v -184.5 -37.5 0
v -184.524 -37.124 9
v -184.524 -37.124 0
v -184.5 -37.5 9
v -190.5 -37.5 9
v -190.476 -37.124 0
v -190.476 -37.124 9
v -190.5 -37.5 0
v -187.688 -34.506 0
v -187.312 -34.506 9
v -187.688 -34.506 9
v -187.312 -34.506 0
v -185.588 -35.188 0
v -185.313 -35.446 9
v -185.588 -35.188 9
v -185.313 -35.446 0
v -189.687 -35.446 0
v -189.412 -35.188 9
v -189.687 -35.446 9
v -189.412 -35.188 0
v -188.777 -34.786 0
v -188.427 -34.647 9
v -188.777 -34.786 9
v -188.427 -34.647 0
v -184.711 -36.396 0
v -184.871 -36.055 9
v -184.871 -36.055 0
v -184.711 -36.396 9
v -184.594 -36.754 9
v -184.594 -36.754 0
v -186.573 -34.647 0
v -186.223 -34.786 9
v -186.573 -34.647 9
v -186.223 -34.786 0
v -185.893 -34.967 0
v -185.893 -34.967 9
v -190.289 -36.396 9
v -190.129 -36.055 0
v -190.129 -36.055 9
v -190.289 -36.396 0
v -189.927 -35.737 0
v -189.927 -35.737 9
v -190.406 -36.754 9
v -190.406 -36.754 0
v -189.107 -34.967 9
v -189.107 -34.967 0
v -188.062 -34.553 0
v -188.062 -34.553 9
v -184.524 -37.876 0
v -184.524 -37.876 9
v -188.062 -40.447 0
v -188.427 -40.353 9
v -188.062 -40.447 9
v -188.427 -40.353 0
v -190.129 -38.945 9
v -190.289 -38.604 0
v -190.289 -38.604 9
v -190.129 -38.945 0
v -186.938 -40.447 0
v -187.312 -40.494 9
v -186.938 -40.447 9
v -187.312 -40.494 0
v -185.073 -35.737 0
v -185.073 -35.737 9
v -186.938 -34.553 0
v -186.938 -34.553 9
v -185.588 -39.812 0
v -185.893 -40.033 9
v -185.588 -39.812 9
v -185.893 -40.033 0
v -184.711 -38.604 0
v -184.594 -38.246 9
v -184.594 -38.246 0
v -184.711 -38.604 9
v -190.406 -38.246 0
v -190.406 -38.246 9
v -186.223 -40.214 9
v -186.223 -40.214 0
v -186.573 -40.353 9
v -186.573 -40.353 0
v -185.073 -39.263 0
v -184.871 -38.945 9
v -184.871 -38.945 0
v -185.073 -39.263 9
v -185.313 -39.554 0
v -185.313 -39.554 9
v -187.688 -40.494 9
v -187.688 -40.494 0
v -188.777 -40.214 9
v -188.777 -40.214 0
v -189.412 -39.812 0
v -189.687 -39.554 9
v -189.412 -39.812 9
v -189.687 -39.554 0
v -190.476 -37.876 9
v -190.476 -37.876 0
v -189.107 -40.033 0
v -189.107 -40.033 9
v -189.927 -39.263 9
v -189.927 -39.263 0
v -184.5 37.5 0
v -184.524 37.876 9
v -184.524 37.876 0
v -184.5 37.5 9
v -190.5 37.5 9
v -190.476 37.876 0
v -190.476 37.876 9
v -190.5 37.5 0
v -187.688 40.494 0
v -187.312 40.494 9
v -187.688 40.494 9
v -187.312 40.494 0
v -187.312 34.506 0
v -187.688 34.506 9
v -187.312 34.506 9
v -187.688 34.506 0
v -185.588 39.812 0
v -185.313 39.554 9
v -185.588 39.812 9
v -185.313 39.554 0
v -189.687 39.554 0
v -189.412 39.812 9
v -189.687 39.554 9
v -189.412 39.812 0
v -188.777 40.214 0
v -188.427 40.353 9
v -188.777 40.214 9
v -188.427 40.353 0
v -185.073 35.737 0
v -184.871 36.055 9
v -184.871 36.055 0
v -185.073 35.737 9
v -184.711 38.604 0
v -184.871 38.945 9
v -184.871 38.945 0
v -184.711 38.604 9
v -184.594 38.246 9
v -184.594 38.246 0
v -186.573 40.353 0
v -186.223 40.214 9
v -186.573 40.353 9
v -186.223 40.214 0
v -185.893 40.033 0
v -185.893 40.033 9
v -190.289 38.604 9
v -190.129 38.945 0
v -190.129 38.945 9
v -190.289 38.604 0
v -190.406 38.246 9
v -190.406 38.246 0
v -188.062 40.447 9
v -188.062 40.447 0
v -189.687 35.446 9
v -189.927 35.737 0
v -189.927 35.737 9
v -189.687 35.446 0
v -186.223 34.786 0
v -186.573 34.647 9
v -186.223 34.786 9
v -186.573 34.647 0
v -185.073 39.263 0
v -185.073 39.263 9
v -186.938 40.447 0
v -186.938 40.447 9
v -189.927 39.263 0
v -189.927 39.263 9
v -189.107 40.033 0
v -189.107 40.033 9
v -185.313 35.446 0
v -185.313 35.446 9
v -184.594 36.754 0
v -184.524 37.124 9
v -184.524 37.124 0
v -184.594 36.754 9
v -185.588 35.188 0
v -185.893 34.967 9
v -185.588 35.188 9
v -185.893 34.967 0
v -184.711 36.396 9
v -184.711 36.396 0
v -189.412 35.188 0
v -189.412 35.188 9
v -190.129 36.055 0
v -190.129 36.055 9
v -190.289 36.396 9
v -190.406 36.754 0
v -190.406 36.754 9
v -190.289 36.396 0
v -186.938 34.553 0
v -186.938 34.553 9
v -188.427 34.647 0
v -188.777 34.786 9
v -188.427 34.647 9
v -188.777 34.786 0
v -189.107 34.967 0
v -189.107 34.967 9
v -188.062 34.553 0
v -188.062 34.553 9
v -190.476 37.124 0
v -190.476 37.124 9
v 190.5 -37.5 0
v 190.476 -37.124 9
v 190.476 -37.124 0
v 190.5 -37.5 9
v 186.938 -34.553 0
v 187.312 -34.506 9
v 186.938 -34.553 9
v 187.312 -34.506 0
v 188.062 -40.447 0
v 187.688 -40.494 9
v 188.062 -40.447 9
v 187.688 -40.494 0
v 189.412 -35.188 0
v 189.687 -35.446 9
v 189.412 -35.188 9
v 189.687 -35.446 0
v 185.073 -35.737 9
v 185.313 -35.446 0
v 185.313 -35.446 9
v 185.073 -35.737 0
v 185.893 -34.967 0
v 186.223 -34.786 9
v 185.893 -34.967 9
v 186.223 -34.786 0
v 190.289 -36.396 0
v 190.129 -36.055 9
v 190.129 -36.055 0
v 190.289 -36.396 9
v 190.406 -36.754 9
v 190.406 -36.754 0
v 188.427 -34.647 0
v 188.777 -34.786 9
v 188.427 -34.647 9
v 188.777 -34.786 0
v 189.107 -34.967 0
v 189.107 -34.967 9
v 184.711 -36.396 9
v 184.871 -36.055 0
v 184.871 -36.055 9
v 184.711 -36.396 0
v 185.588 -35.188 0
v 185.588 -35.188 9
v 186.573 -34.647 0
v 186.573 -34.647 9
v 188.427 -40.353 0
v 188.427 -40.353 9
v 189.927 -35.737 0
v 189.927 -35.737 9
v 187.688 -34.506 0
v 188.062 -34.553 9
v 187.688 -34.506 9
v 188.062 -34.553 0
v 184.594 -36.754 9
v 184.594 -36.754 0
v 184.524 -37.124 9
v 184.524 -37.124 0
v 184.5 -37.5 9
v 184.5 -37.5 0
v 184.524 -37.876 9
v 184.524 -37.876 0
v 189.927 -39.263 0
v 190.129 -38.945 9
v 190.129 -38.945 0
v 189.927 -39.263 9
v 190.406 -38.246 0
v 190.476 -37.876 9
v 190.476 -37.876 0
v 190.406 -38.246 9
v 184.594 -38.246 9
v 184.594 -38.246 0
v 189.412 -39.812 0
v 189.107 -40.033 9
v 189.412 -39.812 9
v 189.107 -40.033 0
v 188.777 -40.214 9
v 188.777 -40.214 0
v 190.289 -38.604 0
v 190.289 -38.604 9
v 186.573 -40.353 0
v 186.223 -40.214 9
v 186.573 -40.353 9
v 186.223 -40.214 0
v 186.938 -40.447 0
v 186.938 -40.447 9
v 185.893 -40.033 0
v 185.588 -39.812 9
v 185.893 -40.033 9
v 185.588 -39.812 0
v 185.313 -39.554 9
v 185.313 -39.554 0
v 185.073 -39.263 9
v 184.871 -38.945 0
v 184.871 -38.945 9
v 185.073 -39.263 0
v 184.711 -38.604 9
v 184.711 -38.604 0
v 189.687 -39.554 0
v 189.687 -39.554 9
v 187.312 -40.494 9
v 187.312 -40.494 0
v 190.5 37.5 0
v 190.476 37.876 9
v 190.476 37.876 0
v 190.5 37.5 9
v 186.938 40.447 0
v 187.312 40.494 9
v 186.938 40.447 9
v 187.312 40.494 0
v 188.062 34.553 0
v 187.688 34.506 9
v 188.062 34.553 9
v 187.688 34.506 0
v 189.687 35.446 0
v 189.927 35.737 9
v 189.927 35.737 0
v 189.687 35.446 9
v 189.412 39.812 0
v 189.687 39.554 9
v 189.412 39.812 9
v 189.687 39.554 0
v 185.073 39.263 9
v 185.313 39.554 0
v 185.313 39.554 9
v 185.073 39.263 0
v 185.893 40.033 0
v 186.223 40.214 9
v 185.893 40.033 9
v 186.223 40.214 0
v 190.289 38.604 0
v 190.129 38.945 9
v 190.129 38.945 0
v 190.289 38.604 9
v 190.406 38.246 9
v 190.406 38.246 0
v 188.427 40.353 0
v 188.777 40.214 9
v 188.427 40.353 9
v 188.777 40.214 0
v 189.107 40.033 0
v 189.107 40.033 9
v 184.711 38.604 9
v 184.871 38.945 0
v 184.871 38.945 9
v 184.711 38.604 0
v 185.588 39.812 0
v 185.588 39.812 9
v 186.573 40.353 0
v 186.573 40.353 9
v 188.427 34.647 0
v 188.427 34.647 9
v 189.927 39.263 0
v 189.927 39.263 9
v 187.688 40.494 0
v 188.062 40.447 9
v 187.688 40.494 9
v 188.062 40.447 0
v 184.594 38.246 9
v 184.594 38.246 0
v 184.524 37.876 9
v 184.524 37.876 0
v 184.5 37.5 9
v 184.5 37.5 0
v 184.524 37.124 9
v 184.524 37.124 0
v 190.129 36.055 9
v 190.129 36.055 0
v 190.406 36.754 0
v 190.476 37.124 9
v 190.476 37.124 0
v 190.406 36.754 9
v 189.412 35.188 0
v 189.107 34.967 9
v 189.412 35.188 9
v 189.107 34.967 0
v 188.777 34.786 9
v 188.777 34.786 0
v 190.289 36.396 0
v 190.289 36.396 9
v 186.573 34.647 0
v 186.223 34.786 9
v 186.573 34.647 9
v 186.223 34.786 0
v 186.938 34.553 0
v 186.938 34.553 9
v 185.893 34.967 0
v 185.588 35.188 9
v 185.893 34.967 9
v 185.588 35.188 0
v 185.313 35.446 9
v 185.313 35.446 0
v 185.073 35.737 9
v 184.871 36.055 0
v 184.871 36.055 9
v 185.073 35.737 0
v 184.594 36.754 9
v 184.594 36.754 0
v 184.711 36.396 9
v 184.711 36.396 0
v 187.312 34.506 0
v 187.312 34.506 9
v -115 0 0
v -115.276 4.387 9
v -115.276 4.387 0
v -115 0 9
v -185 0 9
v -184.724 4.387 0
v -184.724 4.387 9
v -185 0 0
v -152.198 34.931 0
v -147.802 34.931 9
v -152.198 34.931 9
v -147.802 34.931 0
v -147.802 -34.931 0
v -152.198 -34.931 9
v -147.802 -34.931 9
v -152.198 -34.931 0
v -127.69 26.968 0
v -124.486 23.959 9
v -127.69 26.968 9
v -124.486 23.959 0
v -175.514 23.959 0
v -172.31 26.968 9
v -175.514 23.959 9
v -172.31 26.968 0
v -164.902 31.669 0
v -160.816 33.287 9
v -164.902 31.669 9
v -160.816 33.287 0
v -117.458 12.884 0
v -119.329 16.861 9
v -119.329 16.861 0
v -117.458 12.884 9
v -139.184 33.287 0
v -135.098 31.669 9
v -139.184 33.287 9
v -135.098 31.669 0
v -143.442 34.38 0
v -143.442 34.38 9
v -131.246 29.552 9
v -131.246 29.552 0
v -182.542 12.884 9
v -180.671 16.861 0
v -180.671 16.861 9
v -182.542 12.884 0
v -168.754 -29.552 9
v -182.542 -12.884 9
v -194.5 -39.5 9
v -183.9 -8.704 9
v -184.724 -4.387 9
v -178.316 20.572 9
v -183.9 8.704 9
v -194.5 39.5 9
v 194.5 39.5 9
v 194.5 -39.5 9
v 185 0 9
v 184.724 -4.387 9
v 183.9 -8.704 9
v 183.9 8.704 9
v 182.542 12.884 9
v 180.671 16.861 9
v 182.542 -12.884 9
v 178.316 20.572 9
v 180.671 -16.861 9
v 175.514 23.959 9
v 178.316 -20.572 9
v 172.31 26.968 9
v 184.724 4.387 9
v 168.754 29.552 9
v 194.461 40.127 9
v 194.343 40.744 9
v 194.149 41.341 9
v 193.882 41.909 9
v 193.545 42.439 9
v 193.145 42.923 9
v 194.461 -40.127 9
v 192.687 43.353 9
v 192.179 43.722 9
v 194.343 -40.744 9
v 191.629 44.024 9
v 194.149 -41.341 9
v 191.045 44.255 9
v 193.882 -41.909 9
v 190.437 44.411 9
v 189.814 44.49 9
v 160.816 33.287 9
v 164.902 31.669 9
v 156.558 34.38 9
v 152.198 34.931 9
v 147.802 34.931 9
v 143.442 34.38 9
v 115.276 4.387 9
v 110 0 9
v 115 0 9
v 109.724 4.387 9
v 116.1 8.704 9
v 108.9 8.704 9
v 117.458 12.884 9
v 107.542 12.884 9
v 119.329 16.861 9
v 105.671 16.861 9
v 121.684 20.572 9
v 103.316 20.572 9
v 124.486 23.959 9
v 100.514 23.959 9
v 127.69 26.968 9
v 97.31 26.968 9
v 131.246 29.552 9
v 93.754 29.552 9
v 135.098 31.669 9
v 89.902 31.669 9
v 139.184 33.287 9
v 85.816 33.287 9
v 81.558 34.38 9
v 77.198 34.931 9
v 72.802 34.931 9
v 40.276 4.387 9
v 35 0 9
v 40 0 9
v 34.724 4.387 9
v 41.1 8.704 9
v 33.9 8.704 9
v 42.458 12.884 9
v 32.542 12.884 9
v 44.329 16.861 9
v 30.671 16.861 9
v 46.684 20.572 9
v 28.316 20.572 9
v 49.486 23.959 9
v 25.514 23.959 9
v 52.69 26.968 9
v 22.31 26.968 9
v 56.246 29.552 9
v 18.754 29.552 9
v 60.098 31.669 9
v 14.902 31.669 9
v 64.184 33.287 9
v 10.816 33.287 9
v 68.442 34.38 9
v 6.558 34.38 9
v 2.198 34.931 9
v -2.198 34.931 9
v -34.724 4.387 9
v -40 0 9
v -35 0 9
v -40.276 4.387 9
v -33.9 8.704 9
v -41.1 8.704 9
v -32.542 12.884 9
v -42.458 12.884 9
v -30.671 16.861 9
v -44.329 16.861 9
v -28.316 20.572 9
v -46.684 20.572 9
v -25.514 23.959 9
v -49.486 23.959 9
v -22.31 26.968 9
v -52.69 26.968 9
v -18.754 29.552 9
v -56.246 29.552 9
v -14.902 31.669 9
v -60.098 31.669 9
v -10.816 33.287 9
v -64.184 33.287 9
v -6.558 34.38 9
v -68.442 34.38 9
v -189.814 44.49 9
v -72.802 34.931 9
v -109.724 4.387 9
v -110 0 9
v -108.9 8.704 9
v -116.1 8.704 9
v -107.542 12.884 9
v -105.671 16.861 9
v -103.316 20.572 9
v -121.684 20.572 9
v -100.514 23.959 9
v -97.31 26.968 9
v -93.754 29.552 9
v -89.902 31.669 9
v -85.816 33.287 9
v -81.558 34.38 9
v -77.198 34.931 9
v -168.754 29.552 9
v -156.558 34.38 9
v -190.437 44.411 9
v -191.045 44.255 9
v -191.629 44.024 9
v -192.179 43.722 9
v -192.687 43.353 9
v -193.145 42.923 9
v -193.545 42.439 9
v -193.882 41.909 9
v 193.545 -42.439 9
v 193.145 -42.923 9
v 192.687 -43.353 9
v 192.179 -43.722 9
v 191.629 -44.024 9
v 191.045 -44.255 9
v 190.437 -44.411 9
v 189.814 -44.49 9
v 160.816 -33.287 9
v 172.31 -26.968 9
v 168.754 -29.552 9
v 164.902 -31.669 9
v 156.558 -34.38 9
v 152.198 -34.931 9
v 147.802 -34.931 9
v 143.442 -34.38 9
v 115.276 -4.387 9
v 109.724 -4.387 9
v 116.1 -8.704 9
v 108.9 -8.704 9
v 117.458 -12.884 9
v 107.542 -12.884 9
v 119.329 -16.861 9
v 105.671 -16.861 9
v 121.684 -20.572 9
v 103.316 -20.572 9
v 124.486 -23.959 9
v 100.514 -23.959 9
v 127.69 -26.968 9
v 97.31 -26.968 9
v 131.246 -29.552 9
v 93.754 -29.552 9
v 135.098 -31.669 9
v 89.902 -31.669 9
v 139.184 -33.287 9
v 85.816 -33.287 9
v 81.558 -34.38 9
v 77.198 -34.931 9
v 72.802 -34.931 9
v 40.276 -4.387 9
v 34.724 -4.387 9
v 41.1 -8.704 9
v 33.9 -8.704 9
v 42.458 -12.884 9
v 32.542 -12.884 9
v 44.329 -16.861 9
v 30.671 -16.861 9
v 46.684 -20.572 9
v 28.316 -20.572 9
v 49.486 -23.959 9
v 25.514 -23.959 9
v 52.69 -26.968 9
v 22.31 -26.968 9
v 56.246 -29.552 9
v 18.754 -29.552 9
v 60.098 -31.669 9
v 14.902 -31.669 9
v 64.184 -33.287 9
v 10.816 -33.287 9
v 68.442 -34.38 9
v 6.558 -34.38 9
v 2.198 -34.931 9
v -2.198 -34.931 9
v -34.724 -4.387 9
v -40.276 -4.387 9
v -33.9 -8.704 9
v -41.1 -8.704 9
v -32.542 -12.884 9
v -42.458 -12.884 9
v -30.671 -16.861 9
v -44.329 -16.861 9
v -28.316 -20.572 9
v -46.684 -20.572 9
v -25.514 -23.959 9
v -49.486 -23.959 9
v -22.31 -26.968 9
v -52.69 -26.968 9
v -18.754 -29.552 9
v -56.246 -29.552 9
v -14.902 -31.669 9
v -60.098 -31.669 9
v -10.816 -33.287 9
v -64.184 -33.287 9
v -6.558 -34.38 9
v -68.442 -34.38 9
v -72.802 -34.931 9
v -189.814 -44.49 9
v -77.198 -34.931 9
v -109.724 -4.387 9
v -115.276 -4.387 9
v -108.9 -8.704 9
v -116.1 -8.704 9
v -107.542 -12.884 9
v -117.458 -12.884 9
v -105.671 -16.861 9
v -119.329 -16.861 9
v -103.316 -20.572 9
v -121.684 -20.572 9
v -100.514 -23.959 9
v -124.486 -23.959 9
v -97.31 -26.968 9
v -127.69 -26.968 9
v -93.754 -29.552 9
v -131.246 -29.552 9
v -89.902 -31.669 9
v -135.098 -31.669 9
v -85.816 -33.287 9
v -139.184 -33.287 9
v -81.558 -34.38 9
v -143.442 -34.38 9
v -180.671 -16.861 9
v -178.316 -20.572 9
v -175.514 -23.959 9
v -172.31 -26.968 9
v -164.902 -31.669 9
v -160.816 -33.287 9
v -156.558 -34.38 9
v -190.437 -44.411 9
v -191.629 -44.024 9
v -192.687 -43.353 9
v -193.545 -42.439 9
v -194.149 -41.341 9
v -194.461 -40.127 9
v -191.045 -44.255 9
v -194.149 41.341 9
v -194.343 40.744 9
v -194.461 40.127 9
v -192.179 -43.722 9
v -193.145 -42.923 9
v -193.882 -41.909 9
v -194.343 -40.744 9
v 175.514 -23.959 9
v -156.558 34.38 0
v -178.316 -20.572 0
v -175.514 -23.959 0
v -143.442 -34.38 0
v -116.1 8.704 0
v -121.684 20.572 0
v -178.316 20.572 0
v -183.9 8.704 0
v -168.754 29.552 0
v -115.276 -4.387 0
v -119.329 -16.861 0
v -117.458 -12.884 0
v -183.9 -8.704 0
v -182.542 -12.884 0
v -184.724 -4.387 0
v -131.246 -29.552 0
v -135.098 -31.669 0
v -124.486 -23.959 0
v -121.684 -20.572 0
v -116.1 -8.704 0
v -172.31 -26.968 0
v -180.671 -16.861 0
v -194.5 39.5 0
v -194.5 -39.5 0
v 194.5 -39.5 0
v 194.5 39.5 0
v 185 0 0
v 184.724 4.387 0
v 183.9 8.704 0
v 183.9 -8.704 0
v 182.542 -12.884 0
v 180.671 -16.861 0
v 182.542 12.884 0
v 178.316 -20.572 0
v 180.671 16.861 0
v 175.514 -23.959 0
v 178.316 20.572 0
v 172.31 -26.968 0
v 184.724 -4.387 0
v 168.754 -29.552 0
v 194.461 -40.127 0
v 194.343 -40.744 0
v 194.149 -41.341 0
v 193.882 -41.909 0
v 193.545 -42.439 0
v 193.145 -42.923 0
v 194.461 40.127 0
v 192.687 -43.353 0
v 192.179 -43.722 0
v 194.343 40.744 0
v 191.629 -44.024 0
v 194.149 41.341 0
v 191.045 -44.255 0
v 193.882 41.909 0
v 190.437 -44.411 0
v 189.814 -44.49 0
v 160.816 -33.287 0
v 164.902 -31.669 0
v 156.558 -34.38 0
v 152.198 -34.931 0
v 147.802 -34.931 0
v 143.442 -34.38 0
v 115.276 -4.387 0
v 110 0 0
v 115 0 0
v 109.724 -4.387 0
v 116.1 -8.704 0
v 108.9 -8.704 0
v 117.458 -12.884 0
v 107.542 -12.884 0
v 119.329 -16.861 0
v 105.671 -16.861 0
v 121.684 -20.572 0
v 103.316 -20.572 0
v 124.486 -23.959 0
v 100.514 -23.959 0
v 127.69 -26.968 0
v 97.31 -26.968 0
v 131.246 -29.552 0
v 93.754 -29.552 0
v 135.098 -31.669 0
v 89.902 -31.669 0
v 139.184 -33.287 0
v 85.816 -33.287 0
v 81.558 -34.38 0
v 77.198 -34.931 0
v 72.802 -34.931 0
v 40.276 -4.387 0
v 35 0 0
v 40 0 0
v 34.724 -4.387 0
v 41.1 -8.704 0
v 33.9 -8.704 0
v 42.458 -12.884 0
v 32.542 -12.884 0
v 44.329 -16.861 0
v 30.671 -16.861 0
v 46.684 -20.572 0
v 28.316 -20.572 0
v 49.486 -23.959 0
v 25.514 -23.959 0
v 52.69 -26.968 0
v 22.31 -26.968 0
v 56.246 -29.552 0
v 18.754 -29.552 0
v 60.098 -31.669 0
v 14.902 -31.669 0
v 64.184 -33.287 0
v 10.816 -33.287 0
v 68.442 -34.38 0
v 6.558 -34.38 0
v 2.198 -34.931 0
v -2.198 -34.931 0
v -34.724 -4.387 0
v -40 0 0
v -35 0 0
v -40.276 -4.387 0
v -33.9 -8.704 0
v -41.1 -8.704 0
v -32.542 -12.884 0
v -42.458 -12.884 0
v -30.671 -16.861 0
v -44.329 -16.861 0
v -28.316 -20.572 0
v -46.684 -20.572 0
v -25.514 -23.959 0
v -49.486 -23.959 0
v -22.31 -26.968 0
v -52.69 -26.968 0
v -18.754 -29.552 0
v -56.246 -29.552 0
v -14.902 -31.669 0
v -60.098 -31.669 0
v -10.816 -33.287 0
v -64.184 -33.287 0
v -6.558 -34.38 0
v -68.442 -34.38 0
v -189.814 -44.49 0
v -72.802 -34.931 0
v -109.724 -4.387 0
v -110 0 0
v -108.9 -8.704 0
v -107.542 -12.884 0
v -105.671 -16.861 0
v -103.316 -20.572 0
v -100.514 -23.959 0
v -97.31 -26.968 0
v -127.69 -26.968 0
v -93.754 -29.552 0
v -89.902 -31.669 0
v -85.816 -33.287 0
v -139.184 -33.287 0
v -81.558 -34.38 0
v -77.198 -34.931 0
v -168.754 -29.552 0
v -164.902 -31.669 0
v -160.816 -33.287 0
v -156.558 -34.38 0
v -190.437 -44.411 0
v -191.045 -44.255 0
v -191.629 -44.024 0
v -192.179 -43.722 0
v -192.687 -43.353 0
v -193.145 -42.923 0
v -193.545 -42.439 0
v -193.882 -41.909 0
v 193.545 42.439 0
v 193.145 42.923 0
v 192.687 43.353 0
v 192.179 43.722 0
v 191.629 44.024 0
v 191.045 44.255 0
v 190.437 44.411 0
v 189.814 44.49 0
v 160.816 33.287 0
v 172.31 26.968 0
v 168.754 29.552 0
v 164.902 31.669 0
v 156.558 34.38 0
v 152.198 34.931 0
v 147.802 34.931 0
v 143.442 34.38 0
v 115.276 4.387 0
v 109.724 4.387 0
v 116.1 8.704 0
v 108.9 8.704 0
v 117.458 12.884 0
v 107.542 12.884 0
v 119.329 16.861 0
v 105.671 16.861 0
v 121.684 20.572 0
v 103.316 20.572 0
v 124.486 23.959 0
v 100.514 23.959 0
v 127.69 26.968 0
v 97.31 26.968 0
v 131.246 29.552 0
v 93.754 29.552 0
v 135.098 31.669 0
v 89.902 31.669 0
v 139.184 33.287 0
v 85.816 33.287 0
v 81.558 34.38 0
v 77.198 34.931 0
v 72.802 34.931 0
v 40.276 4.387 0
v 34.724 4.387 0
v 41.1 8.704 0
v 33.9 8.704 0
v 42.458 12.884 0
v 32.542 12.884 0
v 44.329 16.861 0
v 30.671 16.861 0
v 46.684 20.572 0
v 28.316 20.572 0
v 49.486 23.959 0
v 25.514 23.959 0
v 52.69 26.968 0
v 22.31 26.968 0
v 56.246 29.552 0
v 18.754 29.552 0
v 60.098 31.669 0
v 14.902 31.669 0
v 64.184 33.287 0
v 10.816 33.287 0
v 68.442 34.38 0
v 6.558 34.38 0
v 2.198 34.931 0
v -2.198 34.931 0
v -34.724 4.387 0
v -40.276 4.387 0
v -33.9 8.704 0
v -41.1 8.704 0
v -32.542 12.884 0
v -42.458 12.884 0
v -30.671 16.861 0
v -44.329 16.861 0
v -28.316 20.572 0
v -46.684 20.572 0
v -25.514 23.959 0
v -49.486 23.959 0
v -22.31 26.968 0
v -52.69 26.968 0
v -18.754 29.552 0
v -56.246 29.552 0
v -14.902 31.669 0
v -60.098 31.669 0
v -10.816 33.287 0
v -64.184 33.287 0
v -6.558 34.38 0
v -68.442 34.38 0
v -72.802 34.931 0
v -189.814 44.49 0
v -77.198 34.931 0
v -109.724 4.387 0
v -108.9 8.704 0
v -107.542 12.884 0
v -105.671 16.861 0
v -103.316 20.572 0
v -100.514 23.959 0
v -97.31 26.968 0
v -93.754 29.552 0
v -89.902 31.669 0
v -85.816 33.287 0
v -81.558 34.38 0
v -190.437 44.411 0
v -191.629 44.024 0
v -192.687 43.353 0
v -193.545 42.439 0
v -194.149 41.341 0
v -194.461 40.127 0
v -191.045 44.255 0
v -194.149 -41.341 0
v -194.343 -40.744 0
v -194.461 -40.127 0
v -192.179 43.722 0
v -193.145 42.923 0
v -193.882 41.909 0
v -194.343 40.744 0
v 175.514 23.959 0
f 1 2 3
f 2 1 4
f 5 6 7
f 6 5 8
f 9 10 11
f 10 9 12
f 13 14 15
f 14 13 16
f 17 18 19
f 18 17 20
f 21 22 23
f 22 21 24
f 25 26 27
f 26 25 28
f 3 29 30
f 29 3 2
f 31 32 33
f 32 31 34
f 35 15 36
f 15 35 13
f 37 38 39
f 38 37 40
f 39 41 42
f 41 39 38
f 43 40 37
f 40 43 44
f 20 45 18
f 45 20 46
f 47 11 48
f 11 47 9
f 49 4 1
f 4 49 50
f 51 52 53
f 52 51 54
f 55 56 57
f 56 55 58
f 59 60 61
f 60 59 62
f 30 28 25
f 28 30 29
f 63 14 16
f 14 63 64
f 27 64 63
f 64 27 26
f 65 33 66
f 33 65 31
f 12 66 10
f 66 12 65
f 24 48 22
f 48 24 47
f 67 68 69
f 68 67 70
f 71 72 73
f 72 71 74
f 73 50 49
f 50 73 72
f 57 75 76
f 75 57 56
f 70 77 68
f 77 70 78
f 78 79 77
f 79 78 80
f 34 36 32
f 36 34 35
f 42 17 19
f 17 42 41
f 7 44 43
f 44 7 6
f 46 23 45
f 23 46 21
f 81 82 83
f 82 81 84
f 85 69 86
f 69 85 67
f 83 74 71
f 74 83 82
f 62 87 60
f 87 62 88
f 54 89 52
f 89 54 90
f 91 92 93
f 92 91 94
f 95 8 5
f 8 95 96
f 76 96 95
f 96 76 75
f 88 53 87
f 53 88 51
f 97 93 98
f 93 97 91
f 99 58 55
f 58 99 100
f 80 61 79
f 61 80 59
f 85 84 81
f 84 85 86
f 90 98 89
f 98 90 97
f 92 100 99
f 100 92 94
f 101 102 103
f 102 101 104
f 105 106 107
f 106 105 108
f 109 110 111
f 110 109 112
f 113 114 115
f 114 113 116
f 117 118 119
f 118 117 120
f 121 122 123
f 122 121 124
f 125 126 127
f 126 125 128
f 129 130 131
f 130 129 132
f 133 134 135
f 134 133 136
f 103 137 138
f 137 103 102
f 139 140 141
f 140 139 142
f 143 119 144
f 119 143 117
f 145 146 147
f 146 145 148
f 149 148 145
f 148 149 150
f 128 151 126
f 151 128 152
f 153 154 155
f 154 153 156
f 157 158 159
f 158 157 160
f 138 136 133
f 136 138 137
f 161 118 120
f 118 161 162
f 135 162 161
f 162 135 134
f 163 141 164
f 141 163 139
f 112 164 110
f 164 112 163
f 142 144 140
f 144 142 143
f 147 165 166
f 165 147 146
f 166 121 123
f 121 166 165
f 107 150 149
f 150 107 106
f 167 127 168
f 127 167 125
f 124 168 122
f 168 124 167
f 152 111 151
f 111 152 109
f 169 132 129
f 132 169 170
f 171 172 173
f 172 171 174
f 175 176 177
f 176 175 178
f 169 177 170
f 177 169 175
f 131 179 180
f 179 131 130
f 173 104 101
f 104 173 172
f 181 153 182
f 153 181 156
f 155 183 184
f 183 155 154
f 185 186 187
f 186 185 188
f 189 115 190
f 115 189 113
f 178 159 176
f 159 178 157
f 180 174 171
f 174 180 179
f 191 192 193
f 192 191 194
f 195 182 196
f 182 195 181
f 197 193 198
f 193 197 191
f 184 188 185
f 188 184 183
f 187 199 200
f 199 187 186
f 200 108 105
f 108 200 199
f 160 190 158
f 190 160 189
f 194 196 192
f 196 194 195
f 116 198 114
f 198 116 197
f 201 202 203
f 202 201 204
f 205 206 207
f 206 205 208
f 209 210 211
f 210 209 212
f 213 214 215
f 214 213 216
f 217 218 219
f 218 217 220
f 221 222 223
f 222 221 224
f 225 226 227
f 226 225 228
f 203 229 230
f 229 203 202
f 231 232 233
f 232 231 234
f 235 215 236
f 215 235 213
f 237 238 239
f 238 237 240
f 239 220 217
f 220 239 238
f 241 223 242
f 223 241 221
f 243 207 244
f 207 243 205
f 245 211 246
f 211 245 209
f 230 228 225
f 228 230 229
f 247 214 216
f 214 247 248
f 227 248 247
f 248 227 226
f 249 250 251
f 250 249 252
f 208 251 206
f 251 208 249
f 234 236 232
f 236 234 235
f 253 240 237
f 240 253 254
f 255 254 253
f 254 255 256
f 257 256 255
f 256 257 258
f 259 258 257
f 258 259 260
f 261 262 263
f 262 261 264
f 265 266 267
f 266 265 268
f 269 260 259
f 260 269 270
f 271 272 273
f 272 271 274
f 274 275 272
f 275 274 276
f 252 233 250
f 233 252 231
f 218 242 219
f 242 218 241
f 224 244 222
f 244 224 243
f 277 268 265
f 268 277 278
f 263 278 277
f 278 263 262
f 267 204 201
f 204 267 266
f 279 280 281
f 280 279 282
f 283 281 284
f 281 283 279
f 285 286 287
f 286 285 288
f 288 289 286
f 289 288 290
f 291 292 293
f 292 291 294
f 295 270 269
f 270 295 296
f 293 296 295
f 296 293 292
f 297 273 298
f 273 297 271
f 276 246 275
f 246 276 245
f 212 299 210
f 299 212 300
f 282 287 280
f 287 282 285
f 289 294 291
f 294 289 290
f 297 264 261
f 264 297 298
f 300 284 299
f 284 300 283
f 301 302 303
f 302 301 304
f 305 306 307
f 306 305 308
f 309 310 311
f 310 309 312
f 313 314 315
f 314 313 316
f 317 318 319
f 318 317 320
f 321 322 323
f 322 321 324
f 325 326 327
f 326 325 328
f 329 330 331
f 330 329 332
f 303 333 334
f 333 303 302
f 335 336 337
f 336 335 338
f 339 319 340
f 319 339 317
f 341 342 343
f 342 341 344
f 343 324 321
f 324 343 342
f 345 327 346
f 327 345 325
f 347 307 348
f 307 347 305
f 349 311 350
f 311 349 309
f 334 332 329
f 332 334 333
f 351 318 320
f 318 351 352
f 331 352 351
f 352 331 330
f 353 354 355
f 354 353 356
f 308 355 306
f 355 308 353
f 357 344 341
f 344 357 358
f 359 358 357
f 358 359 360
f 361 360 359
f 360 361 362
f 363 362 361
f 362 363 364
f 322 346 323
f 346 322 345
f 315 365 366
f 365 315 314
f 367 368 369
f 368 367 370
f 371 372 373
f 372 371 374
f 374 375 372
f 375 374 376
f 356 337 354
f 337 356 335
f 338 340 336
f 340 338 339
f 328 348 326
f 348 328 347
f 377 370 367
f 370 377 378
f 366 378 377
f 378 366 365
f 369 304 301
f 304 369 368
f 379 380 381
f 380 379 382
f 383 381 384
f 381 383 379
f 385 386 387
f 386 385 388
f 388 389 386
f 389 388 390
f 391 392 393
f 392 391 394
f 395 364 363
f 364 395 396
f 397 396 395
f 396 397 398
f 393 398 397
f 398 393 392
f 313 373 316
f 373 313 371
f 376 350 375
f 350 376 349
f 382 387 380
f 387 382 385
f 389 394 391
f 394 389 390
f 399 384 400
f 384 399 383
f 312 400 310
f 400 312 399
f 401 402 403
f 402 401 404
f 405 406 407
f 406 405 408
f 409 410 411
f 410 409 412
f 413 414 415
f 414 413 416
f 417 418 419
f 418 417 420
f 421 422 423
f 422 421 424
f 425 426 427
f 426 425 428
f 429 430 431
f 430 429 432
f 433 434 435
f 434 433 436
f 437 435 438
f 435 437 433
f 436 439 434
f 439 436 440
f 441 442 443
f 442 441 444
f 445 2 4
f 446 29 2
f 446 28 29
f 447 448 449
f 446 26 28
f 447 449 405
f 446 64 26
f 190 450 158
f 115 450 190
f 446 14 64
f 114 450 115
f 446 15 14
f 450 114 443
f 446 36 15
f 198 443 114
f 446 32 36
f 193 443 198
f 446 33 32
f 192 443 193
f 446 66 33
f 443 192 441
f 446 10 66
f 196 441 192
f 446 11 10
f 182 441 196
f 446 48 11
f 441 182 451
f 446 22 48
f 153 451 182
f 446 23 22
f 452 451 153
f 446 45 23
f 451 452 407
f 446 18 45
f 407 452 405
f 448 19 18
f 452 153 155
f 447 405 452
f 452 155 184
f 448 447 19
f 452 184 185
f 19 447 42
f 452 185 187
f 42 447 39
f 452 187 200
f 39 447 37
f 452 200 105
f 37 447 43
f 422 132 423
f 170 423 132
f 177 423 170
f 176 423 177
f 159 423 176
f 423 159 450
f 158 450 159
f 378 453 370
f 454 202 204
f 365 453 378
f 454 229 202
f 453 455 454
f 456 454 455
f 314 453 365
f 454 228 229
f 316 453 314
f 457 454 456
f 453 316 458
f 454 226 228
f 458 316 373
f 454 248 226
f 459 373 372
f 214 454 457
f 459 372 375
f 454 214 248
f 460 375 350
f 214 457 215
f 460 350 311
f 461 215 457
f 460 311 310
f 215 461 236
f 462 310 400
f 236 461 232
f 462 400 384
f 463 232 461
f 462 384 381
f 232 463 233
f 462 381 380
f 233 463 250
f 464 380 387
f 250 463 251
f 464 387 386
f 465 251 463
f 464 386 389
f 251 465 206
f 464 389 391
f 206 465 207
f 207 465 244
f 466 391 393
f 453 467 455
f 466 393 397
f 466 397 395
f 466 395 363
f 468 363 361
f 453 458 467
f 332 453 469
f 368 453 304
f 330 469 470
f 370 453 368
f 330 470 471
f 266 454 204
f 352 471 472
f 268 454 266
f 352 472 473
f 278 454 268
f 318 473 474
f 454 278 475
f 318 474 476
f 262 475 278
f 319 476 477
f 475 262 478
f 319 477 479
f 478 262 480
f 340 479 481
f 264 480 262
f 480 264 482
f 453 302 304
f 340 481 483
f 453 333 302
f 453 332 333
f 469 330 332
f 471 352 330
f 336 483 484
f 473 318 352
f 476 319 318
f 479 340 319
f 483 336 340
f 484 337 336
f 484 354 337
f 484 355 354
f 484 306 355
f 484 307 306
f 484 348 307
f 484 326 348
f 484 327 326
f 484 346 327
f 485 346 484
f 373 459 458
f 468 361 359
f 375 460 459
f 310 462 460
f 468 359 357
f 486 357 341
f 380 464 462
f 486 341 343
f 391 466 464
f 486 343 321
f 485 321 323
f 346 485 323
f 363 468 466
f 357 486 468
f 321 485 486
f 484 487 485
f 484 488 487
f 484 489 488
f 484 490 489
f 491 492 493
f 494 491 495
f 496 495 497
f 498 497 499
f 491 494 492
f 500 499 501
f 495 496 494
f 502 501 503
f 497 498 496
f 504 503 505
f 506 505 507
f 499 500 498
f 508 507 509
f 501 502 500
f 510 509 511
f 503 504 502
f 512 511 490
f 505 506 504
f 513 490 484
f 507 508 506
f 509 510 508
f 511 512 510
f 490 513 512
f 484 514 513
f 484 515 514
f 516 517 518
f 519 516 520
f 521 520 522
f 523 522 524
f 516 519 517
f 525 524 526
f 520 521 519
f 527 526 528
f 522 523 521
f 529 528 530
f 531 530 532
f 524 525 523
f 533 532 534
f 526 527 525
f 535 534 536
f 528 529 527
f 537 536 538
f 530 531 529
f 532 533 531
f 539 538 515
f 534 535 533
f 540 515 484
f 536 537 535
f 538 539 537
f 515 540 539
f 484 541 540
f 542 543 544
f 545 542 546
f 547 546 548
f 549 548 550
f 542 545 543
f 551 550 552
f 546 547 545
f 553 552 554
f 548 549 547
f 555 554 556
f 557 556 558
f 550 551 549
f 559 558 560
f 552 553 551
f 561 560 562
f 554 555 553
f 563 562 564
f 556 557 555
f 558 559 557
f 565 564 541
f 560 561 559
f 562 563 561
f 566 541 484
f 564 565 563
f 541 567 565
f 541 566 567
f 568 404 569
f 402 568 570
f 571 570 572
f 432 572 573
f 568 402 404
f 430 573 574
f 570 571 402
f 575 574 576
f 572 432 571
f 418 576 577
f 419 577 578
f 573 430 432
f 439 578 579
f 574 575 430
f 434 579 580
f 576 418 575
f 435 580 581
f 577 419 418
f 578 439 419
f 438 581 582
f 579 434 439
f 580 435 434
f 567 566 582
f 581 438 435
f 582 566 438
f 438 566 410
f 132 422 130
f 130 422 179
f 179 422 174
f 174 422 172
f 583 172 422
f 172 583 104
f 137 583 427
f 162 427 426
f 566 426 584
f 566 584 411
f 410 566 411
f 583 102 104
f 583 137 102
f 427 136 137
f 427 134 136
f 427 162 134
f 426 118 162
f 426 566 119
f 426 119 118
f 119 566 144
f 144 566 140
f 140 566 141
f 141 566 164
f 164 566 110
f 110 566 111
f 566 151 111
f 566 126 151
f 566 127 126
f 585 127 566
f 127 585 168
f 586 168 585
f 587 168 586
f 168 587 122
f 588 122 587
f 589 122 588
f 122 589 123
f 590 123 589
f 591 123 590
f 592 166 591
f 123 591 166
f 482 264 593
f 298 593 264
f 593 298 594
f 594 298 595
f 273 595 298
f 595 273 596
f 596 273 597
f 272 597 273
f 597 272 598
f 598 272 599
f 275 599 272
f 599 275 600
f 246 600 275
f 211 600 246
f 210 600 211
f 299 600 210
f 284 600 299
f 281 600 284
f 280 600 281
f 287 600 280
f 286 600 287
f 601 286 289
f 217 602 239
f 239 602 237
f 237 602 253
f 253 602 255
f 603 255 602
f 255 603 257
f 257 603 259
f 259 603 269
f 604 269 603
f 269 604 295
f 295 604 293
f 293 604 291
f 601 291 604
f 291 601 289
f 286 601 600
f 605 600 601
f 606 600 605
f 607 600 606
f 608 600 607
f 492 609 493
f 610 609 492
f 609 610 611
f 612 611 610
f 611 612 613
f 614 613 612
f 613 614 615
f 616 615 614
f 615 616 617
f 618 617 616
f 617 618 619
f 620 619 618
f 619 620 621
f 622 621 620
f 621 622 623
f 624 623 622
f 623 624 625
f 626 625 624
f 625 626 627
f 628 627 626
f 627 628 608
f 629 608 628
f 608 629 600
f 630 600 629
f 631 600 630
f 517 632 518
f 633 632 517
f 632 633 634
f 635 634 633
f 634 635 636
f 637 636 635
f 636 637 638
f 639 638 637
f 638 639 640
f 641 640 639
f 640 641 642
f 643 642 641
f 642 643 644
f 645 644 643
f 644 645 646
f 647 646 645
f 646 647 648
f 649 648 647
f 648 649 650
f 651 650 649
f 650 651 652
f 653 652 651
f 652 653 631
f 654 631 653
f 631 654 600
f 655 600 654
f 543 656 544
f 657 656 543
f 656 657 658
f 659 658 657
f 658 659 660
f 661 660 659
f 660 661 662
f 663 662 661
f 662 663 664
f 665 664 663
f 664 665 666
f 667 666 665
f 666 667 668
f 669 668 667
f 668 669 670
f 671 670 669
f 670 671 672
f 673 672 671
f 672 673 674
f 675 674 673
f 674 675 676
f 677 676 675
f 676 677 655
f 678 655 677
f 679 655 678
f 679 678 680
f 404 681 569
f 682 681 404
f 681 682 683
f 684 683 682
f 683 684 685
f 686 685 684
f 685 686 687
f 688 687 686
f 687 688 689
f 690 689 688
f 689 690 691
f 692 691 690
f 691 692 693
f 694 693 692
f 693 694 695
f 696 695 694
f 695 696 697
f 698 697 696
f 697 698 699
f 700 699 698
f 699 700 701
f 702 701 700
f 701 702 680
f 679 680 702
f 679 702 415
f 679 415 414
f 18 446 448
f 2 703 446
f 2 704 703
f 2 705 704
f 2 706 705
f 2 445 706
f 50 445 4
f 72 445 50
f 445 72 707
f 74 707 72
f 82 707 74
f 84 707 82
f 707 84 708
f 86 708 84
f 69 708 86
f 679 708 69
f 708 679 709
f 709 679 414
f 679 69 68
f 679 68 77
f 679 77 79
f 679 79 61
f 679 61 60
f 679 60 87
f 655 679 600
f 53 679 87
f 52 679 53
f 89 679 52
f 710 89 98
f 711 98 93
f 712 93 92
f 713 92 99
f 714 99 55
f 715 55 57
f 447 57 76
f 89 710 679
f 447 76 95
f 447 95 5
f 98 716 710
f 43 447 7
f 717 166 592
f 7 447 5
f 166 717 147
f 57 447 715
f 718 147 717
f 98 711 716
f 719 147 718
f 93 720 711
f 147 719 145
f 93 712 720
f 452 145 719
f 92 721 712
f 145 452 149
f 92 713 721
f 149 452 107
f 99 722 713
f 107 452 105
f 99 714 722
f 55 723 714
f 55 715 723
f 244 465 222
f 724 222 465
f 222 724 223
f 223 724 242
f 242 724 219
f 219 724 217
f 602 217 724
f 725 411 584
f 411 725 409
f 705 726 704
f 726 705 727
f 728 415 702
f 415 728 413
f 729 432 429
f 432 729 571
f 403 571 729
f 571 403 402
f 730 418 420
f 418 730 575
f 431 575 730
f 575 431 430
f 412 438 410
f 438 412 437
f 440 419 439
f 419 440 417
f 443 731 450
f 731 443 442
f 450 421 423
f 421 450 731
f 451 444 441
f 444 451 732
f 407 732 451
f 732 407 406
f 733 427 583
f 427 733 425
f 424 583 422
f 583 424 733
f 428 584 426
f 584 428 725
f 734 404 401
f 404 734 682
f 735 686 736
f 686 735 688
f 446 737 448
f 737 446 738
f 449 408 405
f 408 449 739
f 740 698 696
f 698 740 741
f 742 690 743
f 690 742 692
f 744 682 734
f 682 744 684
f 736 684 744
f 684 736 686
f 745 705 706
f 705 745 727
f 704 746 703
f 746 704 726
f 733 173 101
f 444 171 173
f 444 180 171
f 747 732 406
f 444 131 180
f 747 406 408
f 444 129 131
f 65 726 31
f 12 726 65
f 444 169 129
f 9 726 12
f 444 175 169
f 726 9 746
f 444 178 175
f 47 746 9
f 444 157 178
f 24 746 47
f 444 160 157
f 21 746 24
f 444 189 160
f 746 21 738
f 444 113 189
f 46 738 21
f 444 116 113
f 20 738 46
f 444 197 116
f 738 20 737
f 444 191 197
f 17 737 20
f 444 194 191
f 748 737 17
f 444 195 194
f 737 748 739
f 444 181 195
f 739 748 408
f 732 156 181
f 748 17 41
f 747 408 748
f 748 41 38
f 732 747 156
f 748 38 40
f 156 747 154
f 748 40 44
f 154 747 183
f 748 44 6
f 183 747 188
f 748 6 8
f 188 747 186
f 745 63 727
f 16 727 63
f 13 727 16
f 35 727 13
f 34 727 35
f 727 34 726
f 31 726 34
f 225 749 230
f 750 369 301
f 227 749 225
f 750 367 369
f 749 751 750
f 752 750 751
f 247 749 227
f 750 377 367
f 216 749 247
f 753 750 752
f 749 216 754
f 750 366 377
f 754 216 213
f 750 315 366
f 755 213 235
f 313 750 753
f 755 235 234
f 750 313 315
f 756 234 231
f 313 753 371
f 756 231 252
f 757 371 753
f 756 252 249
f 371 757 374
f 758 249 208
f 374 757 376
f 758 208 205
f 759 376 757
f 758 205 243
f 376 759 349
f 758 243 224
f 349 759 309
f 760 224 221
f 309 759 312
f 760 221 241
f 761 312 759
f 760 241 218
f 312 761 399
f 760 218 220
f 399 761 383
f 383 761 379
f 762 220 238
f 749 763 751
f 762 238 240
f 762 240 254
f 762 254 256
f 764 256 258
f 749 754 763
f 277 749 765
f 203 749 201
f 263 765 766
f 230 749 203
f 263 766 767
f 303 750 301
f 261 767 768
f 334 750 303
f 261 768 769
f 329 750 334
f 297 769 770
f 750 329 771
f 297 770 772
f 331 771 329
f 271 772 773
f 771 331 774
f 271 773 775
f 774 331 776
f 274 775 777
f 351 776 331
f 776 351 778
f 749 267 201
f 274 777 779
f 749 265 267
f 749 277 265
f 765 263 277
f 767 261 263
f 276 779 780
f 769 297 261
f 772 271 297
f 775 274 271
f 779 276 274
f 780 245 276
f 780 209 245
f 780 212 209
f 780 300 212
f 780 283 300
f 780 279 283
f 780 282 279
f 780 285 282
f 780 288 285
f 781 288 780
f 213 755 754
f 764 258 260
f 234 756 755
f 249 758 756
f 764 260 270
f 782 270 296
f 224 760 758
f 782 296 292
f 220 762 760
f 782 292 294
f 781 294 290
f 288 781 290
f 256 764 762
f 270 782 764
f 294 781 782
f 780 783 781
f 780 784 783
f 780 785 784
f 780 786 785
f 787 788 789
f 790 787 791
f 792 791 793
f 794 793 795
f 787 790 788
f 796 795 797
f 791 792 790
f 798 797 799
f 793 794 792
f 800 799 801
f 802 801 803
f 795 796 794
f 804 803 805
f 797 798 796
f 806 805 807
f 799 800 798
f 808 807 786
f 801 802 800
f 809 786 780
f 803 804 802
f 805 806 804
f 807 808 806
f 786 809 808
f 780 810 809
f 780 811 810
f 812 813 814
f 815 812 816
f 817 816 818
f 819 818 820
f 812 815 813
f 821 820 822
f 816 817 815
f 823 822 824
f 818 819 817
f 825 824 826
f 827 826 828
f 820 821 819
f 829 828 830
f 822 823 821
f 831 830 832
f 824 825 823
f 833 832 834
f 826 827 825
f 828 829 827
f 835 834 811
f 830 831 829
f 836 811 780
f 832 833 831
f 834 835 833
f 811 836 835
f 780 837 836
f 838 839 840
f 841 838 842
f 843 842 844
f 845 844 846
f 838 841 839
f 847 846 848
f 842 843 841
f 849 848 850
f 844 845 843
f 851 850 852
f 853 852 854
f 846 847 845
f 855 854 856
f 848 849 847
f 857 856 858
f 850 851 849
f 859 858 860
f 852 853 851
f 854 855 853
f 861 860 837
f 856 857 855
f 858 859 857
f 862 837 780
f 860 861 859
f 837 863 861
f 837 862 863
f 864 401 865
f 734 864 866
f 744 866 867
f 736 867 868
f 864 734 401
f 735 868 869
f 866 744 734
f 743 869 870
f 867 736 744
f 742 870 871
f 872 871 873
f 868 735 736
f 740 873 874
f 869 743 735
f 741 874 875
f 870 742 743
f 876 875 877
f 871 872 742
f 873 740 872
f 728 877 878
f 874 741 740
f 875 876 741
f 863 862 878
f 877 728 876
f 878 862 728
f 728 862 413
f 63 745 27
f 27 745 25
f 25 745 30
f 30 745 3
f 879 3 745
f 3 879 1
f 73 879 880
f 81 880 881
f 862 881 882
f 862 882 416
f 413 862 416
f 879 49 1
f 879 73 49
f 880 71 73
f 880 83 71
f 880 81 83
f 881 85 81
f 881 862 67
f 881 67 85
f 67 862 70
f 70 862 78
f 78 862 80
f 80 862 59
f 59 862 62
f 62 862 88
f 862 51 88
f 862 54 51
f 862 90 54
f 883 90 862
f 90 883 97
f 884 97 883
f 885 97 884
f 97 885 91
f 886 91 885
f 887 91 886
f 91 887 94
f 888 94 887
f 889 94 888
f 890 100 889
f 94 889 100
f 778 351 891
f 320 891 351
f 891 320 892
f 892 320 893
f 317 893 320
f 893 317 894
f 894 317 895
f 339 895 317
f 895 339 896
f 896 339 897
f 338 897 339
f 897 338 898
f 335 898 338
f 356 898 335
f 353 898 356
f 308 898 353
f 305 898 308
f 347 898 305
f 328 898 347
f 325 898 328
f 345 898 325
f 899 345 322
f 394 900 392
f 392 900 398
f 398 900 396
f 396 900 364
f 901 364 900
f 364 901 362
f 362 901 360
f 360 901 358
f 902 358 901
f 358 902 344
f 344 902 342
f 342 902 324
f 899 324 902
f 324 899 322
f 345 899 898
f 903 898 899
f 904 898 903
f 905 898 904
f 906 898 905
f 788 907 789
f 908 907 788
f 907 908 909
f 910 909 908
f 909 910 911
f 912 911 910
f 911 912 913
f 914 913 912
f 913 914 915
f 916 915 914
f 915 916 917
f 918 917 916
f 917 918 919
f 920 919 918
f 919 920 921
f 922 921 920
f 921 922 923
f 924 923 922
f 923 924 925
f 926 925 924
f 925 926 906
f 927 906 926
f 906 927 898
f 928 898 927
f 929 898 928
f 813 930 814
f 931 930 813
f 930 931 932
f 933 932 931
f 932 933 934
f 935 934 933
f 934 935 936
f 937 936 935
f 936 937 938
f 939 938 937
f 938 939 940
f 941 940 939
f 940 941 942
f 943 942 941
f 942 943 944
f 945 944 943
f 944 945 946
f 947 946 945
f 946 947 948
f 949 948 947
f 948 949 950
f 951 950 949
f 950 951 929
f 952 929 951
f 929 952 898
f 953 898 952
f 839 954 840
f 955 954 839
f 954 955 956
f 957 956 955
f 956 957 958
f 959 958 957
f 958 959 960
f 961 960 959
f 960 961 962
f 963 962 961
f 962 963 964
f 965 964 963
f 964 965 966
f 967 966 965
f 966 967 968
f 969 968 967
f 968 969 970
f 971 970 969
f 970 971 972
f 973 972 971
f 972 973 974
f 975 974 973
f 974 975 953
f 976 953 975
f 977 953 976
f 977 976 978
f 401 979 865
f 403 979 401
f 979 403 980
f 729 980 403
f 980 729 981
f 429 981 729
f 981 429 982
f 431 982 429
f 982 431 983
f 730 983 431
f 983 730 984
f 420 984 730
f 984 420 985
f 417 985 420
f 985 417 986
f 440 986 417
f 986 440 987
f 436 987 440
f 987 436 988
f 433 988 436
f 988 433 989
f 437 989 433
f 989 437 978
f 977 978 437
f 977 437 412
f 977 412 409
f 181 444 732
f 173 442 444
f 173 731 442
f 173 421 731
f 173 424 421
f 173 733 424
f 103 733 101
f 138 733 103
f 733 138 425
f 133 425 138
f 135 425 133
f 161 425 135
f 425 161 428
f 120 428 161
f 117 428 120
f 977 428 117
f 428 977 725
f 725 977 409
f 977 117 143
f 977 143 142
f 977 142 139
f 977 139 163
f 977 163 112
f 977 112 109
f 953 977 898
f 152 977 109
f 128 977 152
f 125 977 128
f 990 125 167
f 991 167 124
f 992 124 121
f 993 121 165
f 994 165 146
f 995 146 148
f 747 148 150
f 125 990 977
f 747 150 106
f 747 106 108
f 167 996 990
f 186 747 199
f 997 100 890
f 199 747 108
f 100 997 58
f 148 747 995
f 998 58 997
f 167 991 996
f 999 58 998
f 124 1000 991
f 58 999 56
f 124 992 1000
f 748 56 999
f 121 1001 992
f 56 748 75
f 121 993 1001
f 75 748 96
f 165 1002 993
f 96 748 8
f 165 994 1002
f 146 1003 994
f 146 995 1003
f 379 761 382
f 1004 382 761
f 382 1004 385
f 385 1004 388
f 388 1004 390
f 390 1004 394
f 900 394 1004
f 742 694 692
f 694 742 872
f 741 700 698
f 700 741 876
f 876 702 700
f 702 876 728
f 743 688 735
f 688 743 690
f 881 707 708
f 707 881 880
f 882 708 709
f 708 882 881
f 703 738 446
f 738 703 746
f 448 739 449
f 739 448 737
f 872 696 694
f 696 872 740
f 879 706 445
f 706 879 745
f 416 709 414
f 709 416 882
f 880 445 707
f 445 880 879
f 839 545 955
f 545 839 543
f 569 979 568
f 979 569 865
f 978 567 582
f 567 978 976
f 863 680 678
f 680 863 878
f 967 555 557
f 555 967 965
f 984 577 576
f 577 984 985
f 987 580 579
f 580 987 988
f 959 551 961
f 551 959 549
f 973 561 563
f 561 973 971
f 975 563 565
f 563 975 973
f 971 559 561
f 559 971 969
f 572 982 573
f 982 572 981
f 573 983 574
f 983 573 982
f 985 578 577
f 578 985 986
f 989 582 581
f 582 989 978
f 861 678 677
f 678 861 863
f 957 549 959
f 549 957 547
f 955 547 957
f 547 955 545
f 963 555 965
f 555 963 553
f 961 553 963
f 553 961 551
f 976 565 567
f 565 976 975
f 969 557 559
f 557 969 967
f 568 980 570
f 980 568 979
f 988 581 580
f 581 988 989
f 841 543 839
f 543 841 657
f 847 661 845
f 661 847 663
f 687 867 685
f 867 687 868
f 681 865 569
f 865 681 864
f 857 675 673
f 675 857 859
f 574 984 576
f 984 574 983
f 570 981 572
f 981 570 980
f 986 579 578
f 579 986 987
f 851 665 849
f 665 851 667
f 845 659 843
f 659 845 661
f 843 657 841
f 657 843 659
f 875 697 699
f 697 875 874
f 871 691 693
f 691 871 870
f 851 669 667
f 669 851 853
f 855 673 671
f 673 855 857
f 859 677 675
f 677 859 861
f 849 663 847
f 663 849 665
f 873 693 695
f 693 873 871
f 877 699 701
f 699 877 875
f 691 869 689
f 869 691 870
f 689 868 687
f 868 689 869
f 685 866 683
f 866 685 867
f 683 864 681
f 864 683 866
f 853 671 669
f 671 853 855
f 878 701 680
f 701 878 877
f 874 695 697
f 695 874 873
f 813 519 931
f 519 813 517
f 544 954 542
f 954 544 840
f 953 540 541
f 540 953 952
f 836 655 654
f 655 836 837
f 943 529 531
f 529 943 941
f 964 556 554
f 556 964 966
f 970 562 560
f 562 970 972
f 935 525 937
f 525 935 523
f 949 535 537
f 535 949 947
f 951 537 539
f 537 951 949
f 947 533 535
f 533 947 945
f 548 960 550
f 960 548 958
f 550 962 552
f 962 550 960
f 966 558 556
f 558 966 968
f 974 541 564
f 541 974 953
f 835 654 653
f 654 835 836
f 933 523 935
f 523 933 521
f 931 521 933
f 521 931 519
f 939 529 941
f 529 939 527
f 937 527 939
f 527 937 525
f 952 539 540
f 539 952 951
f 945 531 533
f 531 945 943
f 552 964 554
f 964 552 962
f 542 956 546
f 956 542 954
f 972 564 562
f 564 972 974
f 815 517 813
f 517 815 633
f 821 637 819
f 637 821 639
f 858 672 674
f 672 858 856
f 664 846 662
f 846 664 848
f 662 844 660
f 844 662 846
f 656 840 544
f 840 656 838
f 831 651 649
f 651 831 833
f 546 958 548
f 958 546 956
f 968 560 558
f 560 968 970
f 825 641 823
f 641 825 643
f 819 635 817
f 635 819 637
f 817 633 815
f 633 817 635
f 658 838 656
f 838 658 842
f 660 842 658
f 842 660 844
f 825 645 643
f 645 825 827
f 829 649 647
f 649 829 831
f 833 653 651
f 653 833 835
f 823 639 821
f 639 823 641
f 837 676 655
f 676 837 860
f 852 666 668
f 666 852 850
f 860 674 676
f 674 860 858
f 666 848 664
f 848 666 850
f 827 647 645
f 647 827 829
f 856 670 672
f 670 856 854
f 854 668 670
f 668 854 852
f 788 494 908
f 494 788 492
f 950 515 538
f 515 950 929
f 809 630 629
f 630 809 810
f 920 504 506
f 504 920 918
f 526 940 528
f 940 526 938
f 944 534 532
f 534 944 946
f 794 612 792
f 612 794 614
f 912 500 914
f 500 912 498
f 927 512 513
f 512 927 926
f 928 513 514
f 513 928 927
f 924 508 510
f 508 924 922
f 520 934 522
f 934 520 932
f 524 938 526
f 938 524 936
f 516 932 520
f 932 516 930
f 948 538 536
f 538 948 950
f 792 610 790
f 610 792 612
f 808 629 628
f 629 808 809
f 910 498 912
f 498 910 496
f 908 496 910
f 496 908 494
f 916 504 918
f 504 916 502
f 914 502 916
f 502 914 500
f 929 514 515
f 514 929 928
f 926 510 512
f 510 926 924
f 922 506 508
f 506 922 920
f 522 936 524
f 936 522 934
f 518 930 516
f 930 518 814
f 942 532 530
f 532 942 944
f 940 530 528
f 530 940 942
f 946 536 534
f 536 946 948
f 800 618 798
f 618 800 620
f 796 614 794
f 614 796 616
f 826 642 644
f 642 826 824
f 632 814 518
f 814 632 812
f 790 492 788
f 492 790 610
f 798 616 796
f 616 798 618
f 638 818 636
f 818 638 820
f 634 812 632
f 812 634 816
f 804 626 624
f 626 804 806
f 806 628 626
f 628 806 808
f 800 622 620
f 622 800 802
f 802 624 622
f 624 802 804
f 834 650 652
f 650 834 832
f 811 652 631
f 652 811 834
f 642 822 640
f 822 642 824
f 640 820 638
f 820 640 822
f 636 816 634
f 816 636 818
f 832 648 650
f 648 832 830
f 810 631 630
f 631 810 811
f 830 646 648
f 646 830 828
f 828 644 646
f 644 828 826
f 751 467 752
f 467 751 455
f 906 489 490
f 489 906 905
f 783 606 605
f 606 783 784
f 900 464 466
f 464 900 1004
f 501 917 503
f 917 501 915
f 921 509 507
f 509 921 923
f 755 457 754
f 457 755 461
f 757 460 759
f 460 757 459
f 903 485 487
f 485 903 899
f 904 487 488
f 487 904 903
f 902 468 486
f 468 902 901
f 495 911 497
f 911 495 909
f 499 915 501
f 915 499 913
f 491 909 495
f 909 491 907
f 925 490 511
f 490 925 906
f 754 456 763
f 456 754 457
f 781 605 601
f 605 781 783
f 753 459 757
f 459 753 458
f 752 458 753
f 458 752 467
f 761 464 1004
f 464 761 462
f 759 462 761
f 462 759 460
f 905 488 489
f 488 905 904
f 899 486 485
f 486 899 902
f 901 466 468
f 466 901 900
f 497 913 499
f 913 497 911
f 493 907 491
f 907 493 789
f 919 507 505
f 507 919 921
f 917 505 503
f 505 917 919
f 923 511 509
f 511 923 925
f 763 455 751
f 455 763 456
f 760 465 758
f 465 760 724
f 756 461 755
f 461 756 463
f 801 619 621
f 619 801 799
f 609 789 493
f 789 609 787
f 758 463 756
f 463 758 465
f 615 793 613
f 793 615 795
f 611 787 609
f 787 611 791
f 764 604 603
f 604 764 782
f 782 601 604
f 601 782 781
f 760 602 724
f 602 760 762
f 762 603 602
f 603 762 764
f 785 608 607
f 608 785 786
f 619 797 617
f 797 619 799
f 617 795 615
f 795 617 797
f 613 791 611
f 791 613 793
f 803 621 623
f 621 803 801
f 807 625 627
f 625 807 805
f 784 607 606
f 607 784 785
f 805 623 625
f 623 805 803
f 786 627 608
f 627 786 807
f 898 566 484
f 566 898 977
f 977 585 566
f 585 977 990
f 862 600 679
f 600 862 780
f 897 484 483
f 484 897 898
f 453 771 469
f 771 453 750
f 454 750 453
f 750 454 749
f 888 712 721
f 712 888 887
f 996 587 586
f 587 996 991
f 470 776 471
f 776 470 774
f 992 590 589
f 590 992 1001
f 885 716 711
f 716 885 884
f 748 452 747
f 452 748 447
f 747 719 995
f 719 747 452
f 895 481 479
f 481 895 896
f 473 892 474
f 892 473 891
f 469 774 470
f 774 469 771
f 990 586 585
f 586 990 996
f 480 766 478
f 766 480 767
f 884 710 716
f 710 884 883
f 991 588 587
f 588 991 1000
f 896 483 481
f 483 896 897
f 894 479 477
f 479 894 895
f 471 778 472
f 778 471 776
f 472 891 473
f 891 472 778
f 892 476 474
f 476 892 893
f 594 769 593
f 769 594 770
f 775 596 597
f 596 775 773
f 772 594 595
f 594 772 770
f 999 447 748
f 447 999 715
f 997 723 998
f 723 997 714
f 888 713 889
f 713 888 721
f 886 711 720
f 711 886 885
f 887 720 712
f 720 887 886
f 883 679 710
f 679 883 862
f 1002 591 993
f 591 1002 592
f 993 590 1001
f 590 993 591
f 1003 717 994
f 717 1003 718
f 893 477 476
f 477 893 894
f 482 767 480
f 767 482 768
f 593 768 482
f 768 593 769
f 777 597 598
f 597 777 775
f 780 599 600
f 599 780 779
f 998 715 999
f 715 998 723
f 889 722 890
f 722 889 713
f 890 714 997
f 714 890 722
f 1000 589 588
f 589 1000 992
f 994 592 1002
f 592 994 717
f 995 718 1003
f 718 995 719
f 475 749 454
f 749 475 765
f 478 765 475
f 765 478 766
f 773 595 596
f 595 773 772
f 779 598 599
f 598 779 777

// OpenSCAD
$fn = 50;


difference() {
	union() {
		hull() {
			translate(v = [-189.5000000000, 39.5000000000, 0]) {
				cylinder(h = 9, r = 5);
			}
			translate(v = [189.5000000000, 39.5000000000, 0]) {
				cylinder(h = 9, r = 5);
			}
			translate(v = [-189.5000000000, -39.5000000000, 0]) {
				cylinder(h = 9, r = 5);
			}
			translate(v = [189.5000000000, -39.5000000000, 0]) {
				cylinder(h = 9, r = 5);
			}
		}
	}
	union() {
		#translate(v = [-187.5000000000, -37.5000000000, -100.0000000000]) {
			cylinder(h = 200, r = 3.0000000000);
		}
		#translate(v = [-187.5000000000, 37.5000000000, -100.0000000000]) {
			cylinder(h = 200, r = 3.0000000000);
		}
		#translate(v = [187.5000000000, -37.5000000000, -100.0000000000]) {
			cylinder(h = 200, r = 3.0000000000);
		}
		#translate(v = [187.5000000000, 37.5000000000, -100.0000000000]) {
			cylinder(h = 200, r = 3.0000000000);
		}
		#translate(v = [-150.0000000000, 0, 0]) {
			cylinder(h = 9, r = 35.0000000000);
		}
		#translate(v = [-75.0000000000, 0, 0]) {
			cylinder(h = 9, r = 35.0000000000);
		}
		#cylinder(h = 9, r = 35.0000000000);
		#translate(v = [75.0000000000, 0, 0]) {
			cylinder(h = 9, r = 35.0000000000);
		}
		#translate(v = [150.0000000000, 0, 0]) {
			cylinder(h = 9, r = 35.0000000000);
		}
	}
}
